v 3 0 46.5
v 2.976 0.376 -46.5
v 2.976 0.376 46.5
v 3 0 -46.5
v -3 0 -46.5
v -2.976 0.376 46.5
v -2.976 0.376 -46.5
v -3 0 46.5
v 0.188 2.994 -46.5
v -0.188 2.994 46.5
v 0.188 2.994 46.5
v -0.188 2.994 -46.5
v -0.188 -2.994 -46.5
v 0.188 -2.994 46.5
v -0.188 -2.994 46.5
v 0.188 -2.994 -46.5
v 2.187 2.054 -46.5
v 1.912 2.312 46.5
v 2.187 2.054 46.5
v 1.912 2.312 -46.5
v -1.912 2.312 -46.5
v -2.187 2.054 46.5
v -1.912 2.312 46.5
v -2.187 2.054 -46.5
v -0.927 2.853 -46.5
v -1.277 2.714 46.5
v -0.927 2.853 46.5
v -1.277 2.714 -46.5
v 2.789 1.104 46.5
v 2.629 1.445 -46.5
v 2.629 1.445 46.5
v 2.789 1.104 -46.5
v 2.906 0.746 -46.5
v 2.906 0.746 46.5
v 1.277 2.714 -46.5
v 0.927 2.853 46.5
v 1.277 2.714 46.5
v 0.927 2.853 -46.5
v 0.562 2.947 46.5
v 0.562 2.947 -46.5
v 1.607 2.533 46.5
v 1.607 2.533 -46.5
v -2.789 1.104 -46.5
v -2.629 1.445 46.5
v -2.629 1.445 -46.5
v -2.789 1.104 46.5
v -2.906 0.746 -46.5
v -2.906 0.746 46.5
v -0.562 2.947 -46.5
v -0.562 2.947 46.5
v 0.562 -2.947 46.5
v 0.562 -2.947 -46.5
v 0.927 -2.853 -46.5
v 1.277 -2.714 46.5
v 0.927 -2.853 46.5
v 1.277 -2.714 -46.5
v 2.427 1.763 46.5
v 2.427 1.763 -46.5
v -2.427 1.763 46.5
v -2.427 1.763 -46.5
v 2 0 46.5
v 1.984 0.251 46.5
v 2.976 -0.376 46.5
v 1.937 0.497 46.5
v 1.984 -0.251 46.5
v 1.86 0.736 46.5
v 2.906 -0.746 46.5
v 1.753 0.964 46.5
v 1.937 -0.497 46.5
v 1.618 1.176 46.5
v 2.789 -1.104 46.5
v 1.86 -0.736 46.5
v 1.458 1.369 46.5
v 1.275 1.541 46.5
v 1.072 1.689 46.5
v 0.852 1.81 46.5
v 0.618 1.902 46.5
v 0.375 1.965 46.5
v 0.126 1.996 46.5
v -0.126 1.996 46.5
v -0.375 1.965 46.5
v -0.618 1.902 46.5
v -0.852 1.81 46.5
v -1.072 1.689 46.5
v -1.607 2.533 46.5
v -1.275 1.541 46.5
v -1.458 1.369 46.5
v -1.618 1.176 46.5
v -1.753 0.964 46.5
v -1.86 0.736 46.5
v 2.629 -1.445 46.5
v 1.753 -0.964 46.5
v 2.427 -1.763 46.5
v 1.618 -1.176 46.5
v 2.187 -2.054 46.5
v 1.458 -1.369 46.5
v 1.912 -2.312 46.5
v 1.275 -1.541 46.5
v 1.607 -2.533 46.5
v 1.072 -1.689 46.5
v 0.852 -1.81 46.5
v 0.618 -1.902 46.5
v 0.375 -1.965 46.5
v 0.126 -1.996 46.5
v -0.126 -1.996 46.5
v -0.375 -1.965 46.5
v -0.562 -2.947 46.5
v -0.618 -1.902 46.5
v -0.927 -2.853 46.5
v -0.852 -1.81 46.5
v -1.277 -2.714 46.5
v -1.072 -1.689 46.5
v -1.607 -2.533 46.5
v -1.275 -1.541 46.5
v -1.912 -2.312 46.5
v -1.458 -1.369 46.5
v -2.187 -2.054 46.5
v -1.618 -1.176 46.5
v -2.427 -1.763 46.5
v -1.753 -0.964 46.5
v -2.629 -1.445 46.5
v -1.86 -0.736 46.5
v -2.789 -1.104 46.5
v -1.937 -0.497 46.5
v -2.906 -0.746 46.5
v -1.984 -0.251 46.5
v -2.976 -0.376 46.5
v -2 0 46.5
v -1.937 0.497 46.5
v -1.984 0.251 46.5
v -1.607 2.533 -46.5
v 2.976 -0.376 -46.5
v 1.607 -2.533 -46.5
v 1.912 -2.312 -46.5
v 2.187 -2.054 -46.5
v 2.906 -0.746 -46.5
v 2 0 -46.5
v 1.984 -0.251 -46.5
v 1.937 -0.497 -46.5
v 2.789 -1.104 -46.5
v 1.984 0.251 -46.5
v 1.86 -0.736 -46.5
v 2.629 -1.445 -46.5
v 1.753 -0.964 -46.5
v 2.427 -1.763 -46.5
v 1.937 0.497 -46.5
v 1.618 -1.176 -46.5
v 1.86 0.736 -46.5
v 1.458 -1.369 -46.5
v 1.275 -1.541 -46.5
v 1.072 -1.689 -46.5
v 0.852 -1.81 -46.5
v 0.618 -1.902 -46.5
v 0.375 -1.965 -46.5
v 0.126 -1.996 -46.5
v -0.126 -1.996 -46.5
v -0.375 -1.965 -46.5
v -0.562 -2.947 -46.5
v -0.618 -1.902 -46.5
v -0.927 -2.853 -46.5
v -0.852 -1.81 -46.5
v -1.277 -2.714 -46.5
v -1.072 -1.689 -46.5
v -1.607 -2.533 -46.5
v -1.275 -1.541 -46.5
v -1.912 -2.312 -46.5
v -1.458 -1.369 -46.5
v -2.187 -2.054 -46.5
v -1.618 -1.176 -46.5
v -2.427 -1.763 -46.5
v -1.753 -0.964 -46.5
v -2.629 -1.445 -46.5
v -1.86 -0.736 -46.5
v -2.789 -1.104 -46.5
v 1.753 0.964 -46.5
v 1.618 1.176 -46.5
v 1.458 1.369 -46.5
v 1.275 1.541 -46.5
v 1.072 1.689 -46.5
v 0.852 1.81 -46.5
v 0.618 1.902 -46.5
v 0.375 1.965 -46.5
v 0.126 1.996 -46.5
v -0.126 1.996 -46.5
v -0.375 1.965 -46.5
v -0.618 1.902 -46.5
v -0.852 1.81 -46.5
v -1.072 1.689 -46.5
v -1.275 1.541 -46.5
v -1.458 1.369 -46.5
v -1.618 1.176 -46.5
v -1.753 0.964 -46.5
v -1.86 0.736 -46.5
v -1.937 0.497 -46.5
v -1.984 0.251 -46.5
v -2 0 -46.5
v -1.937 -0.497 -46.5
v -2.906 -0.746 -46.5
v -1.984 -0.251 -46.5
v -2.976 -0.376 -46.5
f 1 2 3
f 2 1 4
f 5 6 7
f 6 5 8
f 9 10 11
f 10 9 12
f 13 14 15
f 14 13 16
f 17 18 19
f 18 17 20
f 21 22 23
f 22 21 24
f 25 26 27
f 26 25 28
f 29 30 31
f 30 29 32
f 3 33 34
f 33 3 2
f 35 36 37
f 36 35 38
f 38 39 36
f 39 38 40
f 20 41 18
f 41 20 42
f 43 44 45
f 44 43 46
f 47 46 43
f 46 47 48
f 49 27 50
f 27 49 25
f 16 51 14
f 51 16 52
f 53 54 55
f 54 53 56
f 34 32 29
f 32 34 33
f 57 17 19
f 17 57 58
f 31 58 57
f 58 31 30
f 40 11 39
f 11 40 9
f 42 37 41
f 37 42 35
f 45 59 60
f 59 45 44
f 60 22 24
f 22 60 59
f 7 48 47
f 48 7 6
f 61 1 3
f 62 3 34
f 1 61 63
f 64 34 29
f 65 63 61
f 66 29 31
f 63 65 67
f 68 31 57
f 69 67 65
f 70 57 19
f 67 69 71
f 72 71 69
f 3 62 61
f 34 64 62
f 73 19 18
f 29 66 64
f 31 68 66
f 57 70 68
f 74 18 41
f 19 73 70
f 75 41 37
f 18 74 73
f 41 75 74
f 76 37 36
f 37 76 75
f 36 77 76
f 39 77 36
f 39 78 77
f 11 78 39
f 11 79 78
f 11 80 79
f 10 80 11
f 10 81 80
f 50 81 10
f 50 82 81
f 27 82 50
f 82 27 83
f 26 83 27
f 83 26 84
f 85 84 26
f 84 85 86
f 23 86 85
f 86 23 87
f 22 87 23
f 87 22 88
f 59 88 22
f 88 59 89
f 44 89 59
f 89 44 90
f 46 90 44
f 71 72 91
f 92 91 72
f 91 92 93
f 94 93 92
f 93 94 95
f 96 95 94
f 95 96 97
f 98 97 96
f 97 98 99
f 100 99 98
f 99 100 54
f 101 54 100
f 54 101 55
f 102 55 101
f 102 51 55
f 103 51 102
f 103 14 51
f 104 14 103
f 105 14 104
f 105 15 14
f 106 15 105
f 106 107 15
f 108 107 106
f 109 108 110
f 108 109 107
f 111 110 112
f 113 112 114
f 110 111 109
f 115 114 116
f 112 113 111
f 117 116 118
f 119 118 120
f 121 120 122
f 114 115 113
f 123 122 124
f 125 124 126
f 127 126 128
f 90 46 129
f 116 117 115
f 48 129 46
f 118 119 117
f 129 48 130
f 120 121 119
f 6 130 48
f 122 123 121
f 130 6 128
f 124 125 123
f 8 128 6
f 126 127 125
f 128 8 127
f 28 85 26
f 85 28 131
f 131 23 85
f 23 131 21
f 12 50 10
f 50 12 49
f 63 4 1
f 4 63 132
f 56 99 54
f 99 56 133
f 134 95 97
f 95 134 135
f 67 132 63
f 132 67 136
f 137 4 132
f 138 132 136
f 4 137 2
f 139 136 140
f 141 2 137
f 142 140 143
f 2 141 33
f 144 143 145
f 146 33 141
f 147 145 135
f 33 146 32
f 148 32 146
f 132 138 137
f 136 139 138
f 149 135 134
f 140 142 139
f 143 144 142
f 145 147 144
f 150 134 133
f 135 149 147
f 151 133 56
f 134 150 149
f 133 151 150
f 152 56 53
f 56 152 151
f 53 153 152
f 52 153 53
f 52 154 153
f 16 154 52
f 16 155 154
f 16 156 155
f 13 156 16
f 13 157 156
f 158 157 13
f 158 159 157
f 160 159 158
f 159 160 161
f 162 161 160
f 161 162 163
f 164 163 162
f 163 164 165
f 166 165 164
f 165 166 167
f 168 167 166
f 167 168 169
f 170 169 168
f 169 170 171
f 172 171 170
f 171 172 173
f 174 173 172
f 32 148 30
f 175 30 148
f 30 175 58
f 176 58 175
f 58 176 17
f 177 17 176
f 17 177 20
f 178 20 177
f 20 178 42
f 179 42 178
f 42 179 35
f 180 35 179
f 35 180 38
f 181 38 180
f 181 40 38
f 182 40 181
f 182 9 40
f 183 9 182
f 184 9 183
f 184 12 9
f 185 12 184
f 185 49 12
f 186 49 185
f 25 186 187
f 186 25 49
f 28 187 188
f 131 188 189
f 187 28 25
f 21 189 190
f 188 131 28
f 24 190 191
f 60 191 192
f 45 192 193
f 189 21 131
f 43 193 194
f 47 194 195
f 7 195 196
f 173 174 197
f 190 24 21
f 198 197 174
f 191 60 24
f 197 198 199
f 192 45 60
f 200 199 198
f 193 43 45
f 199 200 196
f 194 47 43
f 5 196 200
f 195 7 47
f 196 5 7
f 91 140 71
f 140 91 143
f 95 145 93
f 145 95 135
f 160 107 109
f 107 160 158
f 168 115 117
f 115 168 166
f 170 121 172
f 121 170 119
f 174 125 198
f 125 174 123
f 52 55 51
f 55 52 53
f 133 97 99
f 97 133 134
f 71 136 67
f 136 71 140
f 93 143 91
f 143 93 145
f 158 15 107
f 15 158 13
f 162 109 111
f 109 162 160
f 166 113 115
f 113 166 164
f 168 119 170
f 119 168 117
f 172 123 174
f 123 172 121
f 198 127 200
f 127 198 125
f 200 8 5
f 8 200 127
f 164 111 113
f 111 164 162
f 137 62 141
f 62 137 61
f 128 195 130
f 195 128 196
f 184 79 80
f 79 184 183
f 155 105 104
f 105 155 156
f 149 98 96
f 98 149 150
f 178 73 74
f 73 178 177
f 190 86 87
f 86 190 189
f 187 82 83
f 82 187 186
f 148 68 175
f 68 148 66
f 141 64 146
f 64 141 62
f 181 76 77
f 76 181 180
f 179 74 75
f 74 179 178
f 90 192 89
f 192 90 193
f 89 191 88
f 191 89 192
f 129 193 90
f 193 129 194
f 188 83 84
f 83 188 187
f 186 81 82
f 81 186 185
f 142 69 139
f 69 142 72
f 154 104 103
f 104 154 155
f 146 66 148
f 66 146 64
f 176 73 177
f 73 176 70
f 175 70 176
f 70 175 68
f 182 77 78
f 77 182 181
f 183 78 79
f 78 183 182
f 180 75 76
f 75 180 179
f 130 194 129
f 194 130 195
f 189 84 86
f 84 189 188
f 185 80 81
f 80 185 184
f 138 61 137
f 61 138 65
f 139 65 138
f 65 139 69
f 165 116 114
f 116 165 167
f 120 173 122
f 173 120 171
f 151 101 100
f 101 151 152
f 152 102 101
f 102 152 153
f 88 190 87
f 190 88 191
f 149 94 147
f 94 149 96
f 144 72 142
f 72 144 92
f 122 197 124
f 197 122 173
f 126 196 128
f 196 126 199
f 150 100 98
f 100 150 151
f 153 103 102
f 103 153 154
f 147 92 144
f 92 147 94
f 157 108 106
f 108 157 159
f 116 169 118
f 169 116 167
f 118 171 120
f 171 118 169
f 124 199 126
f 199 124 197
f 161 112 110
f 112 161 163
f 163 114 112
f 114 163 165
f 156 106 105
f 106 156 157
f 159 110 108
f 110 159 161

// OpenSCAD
$fn = 50;


difference() {
	union() {
		translate(v = [0, 0, -46.5000000000]) {
			cylinder(h = 93, r = 3.0000000000);
		}
	}
	union() {
		translate(v = [0, 0, -100.0000000000]) {
			cylinder(h = 200, r = 2);
		}
	}
}
